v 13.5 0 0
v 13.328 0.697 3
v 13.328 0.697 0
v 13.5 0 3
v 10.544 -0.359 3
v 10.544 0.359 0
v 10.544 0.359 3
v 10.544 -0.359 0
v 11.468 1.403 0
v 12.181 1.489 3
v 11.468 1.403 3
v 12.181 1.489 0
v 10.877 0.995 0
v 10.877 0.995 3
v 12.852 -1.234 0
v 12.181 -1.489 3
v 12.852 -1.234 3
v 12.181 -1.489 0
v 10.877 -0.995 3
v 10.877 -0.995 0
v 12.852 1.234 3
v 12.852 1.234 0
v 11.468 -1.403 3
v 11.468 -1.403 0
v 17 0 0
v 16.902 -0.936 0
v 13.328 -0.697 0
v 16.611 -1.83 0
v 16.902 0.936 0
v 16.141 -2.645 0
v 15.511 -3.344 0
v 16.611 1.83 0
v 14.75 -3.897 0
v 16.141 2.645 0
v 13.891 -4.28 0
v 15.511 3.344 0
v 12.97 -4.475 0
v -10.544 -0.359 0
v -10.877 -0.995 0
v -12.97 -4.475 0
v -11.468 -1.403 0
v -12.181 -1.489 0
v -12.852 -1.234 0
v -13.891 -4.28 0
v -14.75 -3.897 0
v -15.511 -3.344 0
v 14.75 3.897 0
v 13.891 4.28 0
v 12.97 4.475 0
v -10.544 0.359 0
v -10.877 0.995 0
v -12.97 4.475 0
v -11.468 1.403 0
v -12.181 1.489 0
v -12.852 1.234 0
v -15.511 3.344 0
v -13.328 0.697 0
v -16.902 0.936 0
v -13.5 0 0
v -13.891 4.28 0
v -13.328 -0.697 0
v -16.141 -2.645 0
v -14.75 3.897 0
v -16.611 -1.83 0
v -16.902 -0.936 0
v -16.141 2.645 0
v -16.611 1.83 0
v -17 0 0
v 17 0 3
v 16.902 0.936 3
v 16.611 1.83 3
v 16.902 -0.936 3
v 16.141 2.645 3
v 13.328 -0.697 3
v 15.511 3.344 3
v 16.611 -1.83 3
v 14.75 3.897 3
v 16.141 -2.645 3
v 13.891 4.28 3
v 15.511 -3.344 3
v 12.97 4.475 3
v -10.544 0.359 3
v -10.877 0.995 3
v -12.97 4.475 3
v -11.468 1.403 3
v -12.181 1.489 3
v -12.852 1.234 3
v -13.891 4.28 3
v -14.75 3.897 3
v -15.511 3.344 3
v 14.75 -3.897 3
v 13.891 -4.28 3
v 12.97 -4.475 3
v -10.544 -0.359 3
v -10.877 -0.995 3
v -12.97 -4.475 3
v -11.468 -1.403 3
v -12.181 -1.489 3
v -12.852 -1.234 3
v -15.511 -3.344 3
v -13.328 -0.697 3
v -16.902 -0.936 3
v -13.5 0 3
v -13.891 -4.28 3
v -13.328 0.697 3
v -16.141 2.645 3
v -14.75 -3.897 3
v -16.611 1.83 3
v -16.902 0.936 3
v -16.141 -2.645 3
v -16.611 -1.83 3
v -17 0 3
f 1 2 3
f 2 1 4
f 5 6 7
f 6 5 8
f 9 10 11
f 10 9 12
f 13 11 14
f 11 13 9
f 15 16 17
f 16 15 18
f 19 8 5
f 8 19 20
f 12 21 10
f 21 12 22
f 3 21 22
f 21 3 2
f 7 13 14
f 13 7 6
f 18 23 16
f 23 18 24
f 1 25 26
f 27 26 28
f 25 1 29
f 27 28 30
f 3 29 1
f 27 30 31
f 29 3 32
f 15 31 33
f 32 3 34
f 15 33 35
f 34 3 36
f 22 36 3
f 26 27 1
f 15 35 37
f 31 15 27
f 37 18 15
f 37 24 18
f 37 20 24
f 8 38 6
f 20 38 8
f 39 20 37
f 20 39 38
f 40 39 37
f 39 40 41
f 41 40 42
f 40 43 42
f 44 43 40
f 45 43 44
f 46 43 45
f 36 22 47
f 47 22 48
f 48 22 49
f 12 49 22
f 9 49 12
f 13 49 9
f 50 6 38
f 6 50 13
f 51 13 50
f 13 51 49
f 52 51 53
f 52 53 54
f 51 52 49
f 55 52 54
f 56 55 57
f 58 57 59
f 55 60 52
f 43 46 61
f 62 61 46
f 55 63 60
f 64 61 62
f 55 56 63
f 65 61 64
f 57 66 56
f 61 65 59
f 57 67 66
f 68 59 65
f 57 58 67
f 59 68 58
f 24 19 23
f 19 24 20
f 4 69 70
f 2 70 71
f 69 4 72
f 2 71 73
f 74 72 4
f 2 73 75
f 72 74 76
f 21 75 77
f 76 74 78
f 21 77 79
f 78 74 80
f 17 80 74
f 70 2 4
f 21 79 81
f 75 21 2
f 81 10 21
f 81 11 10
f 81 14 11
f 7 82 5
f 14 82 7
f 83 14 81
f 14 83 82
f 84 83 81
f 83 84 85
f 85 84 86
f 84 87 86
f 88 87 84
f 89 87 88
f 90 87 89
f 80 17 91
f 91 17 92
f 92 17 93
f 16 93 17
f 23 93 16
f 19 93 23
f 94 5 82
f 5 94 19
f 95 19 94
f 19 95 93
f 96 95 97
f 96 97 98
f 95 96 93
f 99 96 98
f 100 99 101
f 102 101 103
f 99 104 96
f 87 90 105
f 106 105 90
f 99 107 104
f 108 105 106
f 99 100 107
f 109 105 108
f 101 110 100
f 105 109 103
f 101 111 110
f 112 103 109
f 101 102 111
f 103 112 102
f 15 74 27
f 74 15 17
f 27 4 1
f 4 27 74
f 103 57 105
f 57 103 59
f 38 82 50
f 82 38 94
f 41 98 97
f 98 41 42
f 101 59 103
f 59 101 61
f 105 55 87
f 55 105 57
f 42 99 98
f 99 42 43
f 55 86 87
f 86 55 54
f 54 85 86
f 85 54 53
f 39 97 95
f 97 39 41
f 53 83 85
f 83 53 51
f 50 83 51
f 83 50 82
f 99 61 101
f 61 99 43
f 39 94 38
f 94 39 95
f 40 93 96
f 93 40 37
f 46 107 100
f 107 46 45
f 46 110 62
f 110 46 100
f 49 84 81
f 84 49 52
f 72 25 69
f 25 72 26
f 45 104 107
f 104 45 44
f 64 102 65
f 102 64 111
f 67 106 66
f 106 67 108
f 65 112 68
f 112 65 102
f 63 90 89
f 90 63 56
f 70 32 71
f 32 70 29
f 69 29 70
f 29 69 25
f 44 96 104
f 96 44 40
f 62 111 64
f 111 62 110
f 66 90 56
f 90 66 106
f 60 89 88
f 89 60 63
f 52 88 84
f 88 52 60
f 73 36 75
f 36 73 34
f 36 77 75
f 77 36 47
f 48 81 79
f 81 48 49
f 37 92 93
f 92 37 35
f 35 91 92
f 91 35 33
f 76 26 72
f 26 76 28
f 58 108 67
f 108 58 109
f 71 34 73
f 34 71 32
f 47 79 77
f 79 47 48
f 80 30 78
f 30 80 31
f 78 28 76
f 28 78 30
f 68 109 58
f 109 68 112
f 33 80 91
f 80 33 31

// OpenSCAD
$fs=.75;

difference() {
	hull() {
		translate(v = [-12.5000000000, 0, 0]) {
			cylinder(d = 9, h = 3);
		}
		translate(v = [12.5000000000, 0, 0]) {
			cylinder(d = 9, h = 3);
		}
	}
	union() {
		translate(v = [12, 0, 0]) {
			cylinder(d = 3.0000000000, h = 3);
		}
		mirror(v = [1, 0, 0]) {
			translate(v = [12, 0, 0]) {
				cylinder(d = 3.0000000000, h = 3);
			}
		}
	}
}
/***********************************************
*********      SolidPython code:      **********
************************************************
 
from solid import *
from solid import extensions
from math import *

class Object:
    pass

l = 25
hole = 3.0
thk=3
h=9

def rbeam(w,l,thk):
	return hull(cylinder(d=w,h=thk).move(x=-l/2.),
	     	     cylinder(d=w,h=thk).move(x=l/2.))


beam = ( rbeam(h,l,thk)
	     - cylinder(d=hole,h=thk).move(x=l/2).mirrorCopy('x')
	    )

scene = beam
scad_render_to_file(scene, 'preview.scad', '$fs=.75;')
 
 
************************************************/
